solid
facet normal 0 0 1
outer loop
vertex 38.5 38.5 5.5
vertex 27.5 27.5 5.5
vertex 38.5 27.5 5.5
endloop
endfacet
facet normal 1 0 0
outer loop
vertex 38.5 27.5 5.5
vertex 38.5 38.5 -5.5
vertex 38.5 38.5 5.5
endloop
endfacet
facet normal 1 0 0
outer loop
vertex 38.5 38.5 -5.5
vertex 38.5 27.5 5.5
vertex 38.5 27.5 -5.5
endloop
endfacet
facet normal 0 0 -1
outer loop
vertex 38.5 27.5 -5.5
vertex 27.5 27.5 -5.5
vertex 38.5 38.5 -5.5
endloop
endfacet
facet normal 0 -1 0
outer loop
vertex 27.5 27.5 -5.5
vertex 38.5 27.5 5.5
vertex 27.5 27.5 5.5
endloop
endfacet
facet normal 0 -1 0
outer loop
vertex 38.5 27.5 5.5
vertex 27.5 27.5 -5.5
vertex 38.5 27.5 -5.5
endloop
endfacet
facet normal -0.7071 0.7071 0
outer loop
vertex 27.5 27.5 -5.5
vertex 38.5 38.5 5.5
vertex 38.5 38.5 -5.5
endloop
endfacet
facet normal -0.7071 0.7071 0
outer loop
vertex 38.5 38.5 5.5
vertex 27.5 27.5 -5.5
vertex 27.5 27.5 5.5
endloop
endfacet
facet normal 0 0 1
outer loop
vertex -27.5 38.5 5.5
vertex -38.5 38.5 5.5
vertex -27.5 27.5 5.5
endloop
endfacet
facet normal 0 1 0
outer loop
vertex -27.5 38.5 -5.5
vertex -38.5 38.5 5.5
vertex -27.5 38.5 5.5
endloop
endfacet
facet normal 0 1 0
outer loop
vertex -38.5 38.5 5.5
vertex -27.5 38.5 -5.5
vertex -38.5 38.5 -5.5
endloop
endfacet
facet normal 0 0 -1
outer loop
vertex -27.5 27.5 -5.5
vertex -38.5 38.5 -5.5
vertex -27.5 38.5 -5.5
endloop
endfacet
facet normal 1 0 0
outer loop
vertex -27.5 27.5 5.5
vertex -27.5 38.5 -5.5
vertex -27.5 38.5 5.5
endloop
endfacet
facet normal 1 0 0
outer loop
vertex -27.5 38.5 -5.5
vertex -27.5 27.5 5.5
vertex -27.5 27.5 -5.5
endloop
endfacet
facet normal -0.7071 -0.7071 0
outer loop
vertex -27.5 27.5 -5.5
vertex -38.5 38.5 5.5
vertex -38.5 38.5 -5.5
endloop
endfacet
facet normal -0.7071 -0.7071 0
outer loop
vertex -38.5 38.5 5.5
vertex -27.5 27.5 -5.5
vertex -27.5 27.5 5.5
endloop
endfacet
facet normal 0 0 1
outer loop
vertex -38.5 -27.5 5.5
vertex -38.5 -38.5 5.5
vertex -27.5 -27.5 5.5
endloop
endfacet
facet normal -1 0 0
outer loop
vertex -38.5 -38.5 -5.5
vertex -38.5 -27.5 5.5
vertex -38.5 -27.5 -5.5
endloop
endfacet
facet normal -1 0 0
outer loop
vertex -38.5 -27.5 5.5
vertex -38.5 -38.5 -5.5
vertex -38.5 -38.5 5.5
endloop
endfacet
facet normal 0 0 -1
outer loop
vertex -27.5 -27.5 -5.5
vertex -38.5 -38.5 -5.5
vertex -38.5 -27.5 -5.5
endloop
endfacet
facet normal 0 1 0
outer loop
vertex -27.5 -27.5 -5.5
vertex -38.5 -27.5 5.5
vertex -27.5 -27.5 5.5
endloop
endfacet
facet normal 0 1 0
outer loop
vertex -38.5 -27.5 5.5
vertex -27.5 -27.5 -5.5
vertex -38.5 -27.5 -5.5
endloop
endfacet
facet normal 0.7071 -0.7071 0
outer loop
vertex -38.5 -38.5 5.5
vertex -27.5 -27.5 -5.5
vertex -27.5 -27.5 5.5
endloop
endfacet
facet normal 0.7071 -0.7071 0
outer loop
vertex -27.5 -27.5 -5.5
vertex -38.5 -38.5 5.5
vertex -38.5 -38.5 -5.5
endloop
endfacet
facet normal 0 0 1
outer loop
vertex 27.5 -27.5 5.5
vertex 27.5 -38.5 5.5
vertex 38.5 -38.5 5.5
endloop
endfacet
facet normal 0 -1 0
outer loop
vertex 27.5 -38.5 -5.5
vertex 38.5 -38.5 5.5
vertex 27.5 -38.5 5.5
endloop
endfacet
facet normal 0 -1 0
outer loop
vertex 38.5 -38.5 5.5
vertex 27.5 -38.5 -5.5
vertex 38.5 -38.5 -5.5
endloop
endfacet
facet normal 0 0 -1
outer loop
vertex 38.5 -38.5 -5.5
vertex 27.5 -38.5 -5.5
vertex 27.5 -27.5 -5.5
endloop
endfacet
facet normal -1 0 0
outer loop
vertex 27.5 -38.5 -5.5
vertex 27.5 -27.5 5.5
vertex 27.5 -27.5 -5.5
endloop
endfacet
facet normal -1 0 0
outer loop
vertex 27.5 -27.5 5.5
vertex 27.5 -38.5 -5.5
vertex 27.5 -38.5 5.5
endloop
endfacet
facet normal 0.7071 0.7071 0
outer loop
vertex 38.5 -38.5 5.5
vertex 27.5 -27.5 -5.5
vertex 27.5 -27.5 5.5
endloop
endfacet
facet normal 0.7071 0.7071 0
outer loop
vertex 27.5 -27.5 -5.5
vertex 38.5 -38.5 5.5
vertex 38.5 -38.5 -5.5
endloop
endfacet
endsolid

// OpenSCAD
// file: def.scad
block_size_3 = 19;
block_size_4 = 16;
block_size_5 = 14;
block_size_6 = 12.5;
block_size_7 = 11;
block_size_8 = 10;

inf = 1000;

round_radius = 1;
sticker_margin = 2.5;
sticker_round_radius = 0.75;

module _block(size) {
    minkowski() {
        cube([size - round_radius * 2, size - round_radius * 2, size - round_radius * 2], center = true);
        sphere(r = round_radius, $fn = 24);
    }
}

module _selector_0(size) {
    cube([size - 0.2, size - 0.2, size - 0.2], center = true);
}

module _sticker(size) {
    minkowski() {
        cube([size - sticker_margin * 2, size - sticker_margin * 2, 0.1], center = true);
        cylinder(r = sticker_round_radius, h = 0.1, $fn = 24);
    }
}

module _selector_corner_cw(size) {
    difference() {
        cube([size, size, size], center = true);
        rotate([0, -45, 0])
            translate([-inf, -inf, 0])
                cube([inf * 2, inf * 2, inf]);
        rotate([90, 0, 45])
            translate([-inf, -inf, 0])
                cube([inf * 2, inf * 2, inf]);
    }
}

module _selector_corner_ccw(size) {
    difference() {
        cube([size, size, size], center = true);
        rotate([45, 0, 0])
            translate([-inf, -inf, 0])
                cube([inf * 2, inf * 2, inf]);
        rotate([0, -90, -45])
            translate([-inf, -inf, 0])
                cube([inf * 2, inf * 2, inf]);
    }
}

module _selector_edge_cw(size) {
    difference() {
        cube([size, size, size], center = true);
        rotate([90, 0, 45])
            translate([-inf, -inf, 0])
                cube([inf * 2, inf * 2, inf]);
    }
}

module _selector_edge_ccw(size) {
    difference() {
        cube([size, size, size], center = true);
        rotate([0, -90, -45])
            translate([-inf, -inf, 0])
                cube([inf * 2, inf * 2, inf]);
    }
}
// main file
include <def.scad>

for (deg = [0 : 90 : 270])
    rotate([0, 0, deg])
        translate([block_size_7 * 3, block_size_7 * 3, 0])
            _selector_edge_ccw(block_size_7);
